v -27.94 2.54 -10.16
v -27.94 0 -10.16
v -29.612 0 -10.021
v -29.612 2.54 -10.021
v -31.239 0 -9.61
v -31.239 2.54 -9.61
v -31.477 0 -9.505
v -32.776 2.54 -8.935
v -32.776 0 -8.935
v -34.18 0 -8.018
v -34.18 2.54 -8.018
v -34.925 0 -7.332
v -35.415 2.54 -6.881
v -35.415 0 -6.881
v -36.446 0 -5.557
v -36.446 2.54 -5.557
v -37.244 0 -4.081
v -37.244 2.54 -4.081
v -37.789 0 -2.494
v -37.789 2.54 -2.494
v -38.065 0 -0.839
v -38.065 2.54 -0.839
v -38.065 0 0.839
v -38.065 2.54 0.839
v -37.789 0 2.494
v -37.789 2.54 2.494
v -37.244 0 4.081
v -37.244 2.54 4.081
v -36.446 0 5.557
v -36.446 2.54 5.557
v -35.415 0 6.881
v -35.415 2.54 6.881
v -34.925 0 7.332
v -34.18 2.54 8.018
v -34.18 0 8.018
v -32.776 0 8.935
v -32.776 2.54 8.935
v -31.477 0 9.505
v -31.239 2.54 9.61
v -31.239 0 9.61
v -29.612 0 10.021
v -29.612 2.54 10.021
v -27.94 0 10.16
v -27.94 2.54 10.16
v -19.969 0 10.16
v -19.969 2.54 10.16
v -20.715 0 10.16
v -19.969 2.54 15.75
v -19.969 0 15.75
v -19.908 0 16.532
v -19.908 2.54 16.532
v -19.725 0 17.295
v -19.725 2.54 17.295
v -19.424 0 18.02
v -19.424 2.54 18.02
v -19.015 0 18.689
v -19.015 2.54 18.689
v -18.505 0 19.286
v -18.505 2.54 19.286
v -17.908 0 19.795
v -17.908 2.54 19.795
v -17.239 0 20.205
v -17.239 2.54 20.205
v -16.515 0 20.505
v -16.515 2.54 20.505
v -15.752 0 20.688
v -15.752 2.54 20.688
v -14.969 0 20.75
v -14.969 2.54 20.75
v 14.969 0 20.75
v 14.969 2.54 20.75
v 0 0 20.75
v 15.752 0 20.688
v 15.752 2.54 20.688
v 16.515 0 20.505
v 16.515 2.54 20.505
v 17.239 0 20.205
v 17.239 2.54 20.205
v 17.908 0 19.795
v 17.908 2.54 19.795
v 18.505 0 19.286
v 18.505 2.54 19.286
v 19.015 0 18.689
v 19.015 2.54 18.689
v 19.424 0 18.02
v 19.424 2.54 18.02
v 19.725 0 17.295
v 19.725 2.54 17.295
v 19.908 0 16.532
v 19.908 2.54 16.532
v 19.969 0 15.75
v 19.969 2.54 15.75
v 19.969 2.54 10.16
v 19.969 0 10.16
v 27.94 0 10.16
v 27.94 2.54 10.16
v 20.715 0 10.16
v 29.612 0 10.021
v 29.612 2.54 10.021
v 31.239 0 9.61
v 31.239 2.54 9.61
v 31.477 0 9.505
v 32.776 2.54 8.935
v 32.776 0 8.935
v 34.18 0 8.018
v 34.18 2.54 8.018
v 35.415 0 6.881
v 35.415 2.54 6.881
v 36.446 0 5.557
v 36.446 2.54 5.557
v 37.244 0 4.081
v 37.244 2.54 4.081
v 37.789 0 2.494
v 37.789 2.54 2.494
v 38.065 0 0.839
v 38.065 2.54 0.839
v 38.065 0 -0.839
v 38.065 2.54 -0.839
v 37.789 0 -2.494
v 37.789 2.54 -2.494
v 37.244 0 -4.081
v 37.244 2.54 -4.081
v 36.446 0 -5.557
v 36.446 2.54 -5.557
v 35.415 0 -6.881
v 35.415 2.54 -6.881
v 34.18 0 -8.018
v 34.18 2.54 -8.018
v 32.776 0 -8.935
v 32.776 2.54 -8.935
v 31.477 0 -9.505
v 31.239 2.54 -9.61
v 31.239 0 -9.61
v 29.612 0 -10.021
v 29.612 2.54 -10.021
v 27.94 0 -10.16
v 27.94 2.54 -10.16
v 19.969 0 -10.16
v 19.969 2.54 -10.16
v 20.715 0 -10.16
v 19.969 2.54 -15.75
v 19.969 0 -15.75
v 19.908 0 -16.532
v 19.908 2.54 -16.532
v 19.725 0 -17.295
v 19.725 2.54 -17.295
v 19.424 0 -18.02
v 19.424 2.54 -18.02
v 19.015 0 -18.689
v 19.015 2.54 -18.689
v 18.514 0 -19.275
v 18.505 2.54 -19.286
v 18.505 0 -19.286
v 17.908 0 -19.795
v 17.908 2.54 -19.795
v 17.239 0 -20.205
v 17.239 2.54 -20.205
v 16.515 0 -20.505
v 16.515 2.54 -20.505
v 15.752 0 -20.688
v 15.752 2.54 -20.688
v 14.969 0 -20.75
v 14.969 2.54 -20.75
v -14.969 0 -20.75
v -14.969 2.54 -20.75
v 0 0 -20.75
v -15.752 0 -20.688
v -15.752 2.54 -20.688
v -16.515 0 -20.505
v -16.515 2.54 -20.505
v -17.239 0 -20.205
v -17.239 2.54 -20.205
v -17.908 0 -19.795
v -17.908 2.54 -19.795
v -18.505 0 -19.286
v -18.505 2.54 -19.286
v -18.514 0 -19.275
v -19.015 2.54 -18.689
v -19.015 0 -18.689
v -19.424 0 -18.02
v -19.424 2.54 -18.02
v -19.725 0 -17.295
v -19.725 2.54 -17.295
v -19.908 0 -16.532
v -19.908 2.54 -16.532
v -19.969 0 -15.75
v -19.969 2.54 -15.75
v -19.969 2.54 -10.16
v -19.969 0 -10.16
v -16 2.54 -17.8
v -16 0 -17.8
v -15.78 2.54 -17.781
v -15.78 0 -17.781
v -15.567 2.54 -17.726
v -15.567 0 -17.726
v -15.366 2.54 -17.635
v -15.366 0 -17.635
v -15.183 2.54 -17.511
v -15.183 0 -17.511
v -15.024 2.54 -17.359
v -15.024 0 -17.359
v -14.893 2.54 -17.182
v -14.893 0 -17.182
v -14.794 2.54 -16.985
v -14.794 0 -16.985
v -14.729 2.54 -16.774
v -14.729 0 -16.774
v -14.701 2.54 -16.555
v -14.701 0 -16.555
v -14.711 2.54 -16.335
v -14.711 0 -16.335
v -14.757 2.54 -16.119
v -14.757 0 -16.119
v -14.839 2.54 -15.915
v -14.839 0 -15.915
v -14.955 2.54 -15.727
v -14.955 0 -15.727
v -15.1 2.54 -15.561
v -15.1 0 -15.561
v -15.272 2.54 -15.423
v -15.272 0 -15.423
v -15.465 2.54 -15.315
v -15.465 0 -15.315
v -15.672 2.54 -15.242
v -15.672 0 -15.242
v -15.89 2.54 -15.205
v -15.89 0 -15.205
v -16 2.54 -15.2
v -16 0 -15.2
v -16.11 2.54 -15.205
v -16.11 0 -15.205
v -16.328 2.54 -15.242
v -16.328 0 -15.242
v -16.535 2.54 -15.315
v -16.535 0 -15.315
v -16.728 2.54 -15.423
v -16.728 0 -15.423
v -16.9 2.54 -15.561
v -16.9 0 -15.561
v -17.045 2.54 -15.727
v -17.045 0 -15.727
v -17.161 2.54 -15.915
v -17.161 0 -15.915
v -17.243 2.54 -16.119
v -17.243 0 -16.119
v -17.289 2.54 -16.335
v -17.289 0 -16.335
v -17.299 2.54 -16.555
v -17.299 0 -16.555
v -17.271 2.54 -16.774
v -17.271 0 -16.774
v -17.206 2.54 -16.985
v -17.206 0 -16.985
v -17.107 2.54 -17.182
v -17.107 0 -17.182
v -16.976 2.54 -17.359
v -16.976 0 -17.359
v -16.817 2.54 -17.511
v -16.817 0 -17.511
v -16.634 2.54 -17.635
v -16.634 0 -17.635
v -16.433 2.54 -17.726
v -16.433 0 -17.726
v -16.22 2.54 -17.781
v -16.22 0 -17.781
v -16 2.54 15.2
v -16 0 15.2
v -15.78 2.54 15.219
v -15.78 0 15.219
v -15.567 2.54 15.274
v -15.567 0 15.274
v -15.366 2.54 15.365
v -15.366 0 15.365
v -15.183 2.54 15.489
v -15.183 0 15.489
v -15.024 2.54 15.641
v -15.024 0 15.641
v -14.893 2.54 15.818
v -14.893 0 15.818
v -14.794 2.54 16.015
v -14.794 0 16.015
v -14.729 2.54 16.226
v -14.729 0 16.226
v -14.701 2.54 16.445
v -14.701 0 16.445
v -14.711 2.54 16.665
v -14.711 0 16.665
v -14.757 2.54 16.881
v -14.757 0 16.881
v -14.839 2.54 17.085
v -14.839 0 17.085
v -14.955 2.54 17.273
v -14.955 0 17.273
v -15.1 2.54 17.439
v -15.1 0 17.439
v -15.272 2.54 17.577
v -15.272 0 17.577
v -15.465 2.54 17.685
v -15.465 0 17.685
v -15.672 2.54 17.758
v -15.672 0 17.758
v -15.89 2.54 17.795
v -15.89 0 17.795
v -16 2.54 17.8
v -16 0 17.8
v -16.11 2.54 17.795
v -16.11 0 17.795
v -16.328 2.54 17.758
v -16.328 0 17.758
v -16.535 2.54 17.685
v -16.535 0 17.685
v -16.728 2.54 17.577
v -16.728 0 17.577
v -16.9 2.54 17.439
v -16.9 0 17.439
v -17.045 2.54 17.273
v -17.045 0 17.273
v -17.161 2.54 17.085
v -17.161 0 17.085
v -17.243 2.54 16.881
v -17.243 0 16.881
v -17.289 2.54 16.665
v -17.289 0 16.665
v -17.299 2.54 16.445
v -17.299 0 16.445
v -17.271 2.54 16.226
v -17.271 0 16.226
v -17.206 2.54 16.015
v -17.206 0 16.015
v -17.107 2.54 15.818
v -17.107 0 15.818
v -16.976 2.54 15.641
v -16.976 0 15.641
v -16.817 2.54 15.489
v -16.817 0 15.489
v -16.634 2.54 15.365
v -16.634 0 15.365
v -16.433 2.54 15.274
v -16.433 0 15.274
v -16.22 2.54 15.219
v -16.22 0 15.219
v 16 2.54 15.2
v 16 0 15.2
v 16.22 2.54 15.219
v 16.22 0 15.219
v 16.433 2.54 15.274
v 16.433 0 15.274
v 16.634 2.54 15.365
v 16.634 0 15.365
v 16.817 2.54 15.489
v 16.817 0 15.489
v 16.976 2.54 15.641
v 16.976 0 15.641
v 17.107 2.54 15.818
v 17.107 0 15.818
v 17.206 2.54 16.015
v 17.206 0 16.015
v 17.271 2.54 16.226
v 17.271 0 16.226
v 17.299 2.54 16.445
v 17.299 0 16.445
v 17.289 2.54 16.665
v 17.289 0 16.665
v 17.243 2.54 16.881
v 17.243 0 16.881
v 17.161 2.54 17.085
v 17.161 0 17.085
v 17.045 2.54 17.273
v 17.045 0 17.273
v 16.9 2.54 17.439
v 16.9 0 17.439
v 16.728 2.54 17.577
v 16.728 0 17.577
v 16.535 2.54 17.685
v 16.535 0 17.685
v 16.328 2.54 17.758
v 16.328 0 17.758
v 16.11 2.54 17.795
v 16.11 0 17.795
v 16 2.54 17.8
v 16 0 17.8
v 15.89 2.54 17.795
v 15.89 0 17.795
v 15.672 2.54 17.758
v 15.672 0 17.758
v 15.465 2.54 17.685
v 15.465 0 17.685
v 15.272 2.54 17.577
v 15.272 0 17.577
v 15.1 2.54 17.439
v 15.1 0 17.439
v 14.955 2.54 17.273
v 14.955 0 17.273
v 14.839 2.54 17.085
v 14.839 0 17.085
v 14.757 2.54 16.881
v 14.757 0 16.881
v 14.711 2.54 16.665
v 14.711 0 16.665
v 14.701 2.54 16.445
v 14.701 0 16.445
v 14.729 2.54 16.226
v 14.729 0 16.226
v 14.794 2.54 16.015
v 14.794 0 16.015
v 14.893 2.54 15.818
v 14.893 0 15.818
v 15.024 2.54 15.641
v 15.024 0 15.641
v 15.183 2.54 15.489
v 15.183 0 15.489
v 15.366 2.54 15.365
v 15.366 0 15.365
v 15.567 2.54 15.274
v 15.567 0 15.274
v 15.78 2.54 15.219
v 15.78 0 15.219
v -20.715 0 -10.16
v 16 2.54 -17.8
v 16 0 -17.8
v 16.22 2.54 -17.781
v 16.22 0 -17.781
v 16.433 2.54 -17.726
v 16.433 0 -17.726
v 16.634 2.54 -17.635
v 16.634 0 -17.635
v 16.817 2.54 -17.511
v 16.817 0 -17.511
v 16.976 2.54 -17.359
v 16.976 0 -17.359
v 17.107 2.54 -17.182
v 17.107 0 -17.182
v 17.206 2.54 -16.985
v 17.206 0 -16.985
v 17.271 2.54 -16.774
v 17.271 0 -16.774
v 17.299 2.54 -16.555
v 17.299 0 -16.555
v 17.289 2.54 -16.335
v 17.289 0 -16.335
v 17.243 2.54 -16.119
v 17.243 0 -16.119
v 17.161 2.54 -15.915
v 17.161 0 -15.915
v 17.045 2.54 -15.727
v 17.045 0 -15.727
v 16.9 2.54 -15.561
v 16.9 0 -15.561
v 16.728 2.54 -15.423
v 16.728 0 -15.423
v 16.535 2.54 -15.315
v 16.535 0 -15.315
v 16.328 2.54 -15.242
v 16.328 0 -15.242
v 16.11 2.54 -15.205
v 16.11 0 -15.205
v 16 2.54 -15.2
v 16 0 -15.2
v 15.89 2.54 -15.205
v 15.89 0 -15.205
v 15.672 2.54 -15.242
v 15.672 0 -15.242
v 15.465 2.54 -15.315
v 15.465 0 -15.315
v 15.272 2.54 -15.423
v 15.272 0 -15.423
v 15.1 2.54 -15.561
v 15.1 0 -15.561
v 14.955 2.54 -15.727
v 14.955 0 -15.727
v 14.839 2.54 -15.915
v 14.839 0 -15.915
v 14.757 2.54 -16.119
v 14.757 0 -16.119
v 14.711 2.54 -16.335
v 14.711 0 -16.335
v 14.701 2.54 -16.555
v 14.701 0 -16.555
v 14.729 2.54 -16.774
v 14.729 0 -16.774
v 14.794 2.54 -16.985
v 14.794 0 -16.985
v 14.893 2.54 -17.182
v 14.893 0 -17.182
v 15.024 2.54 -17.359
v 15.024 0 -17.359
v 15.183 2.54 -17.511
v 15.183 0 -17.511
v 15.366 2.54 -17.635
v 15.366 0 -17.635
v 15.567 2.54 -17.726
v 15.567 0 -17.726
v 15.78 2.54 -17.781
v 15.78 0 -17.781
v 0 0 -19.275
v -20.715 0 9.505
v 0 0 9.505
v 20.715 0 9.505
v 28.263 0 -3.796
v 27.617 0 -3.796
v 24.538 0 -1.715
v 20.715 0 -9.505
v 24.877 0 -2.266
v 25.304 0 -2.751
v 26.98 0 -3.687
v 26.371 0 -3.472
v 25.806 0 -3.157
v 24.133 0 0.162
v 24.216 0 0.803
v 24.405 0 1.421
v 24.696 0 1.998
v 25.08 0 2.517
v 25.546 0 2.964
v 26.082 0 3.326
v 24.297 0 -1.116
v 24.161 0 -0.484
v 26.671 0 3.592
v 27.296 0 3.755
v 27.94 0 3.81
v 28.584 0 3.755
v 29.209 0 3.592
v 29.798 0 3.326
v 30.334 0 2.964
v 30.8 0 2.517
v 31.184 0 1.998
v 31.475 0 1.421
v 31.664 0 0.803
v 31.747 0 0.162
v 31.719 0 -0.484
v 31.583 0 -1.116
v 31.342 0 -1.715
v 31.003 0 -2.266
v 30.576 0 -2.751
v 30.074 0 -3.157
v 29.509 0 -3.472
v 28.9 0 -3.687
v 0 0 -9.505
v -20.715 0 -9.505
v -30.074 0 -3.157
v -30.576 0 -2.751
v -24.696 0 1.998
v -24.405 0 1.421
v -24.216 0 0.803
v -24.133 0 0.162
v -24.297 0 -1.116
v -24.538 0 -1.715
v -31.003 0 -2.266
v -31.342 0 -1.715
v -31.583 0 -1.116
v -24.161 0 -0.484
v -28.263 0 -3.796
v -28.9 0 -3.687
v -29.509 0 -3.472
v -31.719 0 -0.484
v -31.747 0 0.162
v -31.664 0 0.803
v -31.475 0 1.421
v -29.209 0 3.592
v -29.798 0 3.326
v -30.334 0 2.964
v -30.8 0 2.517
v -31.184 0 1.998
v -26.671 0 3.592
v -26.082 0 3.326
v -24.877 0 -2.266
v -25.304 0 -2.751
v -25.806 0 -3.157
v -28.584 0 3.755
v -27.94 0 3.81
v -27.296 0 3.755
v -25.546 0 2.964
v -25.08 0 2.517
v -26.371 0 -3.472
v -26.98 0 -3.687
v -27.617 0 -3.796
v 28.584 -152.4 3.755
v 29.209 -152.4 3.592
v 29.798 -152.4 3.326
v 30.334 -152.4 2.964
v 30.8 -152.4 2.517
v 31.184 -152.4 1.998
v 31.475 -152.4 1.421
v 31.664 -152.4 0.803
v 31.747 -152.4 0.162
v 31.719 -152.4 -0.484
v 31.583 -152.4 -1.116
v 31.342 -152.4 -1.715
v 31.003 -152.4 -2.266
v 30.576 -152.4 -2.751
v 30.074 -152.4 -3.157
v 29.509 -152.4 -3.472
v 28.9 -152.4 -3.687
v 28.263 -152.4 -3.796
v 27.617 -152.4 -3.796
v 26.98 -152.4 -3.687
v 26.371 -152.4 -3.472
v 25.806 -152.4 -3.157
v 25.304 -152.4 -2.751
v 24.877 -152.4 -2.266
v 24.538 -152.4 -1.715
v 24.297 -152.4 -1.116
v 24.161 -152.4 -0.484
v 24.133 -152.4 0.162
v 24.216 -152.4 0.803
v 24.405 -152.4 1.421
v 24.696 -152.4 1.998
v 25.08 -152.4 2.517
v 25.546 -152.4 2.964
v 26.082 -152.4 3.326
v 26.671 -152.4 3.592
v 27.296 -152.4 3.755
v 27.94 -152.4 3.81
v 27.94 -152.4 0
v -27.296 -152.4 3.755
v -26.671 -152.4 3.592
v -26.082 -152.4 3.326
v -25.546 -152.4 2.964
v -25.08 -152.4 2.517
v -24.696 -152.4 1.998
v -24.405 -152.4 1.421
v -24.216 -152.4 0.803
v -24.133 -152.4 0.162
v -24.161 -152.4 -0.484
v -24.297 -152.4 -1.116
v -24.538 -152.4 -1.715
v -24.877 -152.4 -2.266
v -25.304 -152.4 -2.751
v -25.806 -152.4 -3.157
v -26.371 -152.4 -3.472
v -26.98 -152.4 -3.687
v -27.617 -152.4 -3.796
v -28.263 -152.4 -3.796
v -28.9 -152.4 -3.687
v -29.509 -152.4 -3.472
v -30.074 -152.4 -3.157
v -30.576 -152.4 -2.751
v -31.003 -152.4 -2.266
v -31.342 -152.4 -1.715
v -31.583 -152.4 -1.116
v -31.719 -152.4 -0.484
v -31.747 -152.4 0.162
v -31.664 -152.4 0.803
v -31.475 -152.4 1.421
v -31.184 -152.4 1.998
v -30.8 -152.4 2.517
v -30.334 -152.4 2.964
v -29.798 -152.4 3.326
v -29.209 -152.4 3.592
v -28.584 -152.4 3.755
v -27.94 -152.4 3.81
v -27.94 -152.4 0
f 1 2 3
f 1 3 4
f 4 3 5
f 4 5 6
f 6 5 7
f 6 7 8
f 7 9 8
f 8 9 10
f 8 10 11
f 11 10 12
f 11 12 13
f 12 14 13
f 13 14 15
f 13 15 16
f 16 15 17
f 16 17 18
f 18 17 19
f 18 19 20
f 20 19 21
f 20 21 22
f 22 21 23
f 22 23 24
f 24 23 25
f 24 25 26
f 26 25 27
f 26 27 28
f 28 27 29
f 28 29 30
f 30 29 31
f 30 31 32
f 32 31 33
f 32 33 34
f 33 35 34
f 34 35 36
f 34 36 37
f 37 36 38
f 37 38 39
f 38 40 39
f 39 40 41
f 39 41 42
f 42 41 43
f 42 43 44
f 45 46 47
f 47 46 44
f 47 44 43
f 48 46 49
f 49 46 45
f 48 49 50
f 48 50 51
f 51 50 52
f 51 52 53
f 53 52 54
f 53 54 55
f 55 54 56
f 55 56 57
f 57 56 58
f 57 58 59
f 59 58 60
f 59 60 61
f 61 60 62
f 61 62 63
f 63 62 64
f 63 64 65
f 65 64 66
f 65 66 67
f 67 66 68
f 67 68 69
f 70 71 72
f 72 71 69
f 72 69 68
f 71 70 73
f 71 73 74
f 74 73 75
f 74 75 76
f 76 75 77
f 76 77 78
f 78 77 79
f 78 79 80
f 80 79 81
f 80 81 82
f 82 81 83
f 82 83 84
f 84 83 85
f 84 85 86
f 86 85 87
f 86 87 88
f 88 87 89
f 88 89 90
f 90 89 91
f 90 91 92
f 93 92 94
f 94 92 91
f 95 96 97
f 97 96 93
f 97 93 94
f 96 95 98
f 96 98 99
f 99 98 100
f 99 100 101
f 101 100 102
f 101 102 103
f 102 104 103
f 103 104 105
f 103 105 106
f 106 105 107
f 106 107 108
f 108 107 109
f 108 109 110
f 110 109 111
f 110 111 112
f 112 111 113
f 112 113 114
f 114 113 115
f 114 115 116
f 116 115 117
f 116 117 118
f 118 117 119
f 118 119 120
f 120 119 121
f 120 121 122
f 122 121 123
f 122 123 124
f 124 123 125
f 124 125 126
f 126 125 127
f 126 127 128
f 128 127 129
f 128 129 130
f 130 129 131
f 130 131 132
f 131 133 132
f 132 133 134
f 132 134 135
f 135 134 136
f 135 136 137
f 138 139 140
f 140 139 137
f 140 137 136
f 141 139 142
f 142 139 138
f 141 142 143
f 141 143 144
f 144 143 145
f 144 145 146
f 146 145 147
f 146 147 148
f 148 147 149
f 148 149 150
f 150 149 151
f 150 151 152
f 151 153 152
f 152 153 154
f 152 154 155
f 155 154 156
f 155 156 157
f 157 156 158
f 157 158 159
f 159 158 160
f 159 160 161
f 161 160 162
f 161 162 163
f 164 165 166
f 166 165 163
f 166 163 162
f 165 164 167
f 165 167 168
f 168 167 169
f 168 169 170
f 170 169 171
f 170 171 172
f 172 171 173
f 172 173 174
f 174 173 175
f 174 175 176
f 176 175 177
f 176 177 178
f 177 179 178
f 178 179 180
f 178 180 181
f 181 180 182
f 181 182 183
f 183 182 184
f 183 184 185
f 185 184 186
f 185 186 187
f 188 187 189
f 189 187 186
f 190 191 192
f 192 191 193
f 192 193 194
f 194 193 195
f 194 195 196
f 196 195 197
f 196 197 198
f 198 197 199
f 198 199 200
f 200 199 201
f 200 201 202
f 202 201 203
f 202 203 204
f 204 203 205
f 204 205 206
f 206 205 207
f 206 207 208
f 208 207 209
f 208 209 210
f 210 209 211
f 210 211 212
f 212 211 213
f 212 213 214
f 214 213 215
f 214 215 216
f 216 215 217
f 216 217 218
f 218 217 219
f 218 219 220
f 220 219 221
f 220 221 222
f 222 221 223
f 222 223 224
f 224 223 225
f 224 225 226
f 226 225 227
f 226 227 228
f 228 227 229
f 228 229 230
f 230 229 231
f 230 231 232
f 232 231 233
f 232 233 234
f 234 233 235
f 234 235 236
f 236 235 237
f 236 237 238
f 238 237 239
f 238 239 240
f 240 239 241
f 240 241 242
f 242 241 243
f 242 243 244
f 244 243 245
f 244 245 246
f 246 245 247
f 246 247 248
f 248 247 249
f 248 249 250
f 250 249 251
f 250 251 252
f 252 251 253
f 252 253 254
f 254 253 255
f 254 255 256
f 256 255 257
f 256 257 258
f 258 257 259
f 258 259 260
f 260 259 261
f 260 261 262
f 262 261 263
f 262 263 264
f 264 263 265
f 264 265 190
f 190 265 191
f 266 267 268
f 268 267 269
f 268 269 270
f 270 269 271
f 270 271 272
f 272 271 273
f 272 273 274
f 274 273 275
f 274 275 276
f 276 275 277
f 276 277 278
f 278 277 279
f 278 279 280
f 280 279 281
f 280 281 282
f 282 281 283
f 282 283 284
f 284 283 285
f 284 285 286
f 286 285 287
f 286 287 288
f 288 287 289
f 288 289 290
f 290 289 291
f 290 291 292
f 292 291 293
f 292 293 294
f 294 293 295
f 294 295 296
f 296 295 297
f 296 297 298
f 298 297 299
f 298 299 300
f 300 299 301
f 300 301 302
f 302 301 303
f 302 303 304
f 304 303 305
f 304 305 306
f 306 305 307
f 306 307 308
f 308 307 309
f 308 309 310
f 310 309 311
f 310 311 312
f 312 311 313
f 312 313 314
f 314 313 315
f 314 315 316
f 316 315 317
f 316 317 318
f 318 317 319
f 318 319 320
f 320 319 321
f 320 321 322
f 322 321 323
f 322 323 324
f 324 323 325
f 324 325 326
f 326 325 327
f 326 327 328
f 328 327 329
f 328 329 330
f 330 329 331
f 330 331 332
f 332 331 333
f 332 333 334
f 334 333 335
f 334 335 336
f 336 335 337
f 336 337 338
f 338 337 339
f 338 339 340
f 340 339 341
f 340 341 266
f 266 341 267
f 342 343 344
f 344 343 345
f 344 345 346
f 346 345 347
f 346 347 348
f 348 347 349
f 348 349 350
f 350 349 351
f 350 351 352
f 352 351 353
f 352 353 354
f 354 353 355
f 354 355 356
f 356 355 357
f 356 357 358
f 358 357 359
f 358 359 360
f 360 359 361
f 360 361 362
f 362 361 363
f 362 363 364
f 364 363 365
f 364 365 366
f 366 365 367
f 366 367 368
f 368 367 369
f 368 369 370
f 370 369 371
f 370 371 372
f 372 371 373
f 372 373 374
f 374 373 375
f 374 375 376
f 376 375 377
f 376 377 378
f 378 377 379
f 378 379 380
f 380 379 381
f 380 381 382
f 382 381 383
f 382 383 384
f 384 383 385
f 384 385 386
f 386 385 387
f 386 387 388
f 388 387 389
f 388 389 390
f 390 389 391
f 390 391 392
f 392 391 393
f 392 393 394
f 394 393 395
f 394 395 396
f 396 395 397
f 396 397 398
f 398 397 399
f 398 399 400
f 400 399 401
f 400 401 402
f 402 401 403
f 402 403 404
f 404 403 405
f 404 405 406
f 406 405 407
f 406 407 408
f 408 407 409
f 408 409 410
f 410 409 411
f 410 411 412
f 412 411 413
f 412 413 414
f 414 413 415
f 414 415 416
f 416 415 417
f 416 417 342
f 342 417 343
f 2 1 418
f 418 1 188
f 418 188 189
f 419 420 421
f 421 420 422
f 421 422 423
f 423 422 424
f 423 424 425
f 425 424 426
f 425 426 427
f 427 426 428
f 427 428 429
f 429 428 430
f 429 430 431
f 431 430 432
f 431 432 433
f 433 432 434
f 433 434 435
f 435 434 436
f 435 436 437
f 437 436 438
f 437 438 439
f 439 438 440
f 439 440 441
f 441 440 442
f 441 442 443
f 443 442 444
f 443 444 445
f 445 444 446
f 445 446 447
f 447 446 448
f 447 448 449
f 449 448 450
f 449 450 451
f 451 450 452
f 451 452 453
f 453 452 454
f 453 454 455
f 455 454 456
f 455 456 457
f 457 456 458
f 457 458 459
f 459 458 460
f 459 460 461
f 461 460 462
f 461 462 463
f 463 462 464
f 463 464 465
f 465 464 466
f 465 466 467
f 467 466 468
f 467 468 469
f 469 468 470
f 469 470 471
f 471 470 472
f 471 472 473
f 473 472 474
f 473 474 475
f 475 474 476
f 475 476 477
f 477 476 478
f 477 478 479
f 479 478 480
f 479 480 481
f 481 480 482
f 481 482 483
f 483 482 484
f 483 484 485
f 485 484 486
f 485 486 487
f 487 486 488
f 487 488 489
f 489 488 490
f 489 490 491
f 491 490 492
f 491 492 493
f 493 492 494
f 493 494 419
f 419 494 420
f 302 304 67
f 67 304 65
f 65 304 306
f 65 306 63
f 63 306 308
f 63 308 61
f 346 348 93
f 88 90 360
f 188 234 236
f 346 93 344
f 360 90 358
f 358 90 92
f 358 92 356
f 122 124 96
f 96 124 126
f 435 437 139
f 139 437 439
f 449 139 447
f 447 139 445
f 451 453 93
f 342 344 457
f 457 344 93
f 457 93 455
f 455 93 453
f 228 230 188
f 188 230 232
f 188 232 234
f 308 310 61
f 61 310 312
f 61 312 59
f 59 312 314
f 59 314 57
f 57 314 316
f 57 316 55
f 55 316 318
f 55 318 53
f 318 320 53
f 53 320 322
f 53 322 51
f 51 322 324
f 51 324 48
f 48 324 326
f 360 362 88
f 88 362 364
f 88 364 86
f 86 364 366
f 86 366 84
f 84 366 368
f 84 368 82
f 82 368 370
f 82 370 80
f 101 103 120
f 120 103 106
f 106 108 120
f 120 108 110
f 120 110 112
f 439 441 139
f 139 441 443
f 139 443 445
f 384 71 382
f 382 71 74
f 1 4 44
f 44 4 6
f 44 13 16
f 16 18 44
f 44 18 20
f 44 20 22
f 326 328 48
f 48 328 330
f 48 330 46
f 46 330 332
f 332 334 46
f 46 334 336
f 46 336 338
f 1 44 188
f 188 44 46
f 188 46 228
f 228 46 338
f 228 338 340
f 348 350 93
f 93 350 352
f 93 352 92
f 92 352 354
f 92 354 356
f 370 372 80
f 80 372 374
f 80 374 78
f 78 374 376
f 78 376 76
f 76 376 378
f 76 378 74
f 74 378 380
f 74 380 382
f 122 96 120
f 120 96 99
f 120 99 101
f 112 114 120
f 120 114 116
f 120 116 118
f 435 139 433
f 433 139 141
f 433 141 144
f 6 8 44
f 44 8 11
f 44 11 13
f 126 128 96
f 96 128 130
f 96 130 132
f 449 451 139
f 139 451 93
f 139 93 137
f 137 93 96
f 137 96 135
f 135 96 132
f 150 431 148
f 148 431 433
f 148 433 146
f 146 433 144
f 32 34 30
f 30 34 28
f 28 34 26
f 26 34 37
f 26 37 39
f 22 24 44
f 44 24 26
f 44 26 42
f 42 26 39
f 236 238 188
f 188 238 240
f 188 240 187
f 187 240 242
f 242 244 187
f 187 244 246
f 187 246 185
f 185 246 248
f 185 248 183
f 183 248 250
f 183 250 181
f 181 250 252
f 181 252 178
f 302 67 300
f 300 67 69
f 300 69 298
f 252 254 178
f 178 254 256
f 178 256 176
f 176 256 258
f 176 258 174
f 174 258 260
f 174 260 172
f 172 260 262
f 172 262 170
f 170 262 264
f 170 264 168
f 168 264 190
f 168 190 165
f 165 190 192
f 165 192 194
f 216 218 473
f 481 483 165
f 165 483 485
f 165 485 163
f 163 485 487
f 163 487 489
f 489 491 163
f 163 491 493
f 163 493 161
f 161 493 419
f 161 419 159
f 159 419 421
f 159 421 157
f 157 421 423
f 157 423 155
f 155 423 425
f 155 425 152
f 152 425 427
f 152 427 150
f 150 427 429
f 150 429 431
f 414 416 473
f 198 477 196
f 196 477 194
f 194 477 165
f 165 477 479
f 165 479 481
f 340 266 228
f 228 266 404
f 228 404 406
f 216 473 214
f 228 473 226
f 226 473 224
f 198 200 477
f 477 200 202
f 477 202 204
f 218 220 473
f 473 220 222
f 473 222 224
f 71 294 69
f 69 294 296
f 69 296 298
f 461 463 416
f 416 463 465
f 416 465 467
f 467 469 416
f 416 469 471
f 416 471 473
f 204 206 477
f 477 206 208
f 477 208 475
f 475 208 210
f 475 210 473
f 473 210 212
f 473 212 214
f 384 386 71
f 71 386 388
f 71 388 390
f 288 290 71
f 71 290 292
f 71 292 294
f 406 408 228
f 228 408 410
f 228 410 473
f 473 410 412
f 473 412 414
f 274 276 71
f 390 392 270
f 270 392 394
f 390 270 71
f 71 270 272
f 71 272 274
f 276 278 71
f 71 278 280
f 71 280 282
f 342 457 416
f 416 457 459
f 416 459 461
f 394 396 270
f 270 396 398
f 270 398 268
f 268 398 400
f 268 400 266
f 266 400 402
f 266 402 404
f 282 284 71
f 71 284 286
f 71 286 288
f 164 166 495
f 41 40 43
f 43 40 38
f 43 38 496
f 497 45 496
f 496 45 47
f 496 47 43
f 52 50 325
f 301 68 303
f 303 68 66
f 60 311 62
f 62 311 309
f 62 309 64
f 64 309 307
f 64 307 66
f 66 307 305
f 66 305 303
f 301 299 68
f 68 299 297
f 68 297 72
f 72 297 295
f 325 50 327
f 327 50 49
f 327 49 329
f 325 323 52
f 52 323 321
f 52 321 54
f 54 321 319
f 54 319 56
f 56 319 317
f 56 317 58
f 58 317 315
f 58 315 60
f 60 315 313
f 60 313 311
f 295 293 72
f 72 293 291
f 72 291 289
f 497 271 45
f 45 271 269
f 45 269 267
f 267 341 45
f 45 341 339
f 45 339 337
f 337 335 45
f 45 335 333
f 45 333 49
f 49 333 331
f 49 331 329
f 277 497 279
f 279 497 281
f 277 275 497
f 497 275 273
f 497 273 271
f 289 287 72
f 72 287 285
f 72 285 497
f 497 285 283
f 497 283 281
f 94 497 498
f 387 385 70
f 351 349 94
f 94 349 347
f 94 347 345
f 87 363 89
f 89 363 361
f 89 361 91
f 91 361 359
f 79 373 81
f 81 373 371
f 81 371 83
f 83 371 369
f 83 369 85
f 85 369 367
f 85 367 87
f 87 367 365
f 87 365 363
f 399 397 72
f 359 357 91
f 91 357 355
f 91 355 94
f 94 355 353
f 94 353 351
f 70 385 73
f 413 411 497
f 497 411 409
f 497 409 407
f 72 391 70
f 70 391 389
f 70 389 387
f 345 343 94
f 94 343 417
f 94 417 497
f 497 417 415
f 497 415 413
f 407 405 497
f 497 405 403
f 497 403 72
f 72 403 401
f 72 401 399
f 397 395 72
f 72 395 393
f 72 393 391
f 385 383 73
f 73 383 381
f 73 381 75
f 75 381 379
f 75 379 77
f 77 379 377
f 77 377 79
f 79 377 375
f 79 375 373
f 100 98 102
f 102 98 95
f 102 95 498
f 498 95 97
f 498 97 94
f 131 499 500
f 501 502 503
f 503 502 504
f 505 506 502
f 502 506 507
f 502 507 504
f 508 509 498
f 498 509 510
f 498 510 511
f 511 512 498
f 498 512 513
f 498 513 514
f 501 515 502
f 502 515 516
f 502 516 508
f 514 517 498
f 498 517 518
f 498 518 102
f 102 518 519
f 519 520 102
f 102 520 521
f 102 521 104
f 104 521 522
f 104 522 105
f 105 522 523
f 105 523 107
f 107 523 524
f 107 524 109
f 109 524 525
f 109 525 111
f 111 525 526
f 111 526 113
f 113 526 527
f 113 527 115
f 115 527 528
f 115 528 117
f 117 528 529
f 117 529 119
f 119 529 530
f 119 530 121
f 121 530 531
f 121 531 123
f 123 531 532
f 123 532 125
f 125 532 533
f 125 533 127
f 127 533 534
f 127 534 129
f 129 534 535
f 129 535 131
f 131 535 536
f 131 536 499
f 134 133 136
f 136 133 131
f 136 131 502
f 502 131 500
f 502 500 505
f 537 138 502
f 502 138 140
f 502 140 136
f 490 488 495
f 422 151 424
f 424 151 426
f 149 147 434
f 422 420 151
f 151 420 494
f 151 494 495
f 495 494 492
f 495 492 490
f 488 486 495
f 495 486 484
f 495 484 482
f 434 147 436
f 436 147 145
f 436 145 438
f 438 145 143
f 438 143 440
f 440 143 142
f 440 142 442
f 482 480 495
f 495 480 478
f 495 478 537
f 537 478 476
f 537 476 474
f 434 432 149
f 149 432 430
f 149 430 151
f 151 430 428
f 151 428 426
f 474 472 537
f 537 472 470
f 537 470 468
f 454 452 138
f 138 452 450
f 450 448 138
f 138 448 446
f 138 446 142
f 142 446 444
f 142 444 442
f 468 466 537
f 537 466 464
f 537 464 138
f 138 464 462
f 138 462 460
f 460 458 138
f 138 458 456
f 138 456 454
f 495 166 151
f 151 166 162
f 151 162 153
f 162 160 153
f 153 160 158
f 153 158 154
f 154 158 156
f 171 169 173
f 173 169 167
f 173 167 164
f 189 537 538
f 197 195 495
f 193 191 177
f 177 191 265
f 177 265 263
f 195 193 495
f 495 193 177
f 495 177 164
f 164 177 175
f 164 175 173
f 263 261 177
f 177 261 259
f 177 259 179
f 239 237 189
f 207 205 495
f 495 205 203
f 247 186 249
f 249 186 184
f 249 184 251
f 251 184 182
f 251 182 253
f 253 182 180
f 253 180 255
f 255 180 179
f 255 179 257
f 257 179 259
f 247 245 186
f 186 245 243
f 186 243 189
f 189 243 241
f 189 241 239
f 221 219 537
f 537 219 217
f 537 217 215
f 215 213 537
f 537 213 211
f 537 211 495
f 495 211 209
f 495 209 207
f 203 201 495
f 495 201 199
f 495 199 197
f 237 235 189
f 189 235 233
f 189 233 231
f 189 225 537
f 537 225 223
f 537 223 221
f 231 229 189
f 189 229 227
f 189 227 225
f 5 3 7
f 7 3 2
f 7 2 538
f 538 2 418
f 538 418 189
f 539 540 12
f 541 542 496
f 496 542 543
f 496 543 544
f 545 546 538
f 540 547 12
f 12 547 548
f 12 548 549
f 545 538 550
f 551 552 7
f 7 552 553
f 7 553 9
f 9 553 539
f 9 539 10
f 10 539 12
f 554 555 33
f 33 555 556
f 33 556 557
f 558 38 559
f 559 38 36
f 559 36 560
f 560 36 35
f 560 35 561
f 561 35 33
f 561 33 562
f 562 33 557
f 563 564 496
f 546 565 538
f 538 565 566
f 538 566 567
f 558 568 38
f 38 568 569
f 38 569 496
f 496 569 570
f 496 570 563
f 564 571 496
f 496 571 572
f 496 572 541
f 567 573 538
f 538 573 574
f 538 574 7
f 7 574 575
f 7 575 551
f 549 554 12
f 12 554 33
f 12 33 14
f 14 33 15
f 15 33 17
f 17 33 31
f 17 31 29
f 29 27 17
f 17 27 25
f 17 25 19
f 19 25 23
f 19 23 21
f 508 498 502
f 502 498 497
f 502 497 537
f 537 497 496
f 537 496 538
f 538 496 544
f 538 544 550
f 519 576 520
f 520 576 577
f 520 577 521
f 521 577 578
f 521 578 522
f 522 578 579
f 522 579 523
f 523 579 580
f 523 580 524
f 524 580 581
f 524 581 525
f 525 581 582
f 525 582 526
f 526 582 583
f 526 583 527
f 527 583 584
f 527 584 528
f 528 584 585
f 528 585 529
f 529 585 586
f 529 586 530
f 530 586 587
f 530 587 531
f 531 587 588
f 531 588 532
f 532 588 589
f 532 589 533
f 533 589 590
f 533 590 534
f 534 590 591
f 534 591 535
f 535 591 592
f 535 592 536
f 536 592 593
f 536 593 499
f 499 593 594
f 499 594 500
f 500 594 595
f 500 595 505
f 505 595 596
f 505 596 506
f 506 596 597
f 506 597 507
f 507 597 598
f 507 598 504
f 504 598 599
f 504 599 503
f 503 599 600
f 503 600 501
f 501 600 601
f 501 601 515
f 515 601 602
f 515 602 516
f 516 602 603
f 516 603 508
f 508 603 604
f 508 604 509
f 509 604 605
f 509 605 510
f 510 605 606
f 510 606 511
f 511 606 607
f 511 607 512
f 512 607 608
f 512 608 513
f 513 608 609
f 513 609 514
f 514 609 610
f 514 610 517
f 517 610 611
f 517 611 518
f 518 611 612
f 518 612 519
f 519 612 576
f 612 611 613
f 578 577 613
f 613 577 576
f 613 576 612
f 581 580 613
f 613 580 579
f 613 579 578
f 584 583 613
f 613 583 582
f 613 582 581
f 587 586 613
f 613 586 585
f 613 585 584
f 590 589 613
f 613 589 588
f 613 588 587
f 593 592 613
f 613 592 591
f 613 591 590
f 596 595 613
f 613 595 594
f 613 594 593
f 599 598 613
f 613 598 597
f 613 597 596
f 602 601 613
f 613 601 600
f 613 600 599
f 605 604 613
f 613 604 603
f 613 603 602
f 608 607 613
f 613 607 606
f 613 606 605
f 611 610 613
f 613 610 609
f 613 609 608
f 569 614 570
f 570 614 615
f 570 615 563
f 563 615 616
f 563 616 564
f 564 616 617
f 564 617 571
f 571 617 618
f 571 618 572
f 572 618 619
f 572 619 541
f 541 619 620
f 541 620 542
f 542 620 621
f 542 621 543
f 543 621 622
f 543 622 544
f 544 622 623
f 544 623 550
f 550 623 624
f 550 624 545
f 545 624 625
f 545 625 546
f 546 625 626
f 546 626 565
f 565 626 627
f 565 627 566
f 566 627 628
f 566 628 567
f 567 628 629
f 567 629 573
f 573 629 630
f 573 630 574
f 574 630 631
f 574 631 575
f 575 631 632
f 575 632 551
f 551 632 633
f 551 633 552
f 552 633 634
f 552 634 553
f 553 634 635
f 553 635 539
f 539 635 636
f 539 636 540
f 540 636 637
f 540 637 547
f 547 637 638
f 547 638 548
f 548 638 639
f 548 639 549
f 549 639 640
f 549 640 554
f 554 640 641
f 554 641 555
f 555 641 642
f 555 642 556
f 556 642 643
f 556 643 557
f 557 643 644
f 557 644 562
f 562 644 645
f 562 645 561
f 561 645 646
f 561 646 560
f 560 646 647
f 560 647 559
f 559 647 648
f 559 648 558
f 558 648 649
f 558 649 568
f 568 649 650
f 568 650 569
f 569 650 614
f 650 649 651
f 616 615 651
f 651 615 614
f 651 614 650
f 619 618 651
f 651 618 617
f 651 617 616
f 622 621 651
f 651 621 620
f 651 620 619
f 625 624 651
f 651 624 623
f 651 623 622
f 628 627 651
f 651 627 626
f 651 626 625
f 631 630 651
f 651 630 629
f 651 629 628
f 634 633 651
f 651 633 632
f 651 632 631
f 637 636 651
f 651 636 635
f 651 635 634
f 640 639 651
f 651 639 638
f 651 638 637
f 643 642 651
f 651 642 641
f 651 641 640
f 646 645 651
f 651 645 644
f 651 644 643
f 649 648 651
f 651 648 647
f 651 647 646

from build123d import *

# Parameters (mm, degrees)
SKETCH1_R           = 1.3
BOSS_EXTRUDE1_DEPTH = 2.54
SKETCH1_3_R         = 3.81
BOSS_EXTRUDE2_DEPTH = 152.4


with BuildPart() as part:
    # Sketch1 → Boss-Extrude1 (new body)
    with BuildSketch(Plane(origin=(0, 0, 0), x_dir=(1, 0, 0), z_dir=(0, 1, 0))):
        with BuildLine():
            Line((14.969429072, 20.75), (-14.969429072, 20.75))
            ThreePointArc((-14.969429072, 20.75), (-18.504962978, 19.285533906), (-19.969429072, 15.75))
            Line((-19.969429072, 15.75), (-19.969429072, 10.16))
            Line((-19.969429072, 10.16), (-27.94, 10.16))
            ThreePointArc((-27.94, 10.16), (-38.1, 0), (-27.94, -10.16))
            Line((-27.94, -10.16), (-19.969429072, -10.16))
            Line((-19.969429072, -10.16), (-19.969429072, -15.75))
            ThreePointArc((-19.969429072, -15.75), (-18.504962978, -19.285533906), (-14.969429072, -20.75))
            Line((-14.969429072, -20.75), (14.969429072, -20.75))
            ThreePointArc((14.969429072, -20.75), (18.504962978, -19.285533906), (19.969429072, -15.75))
            Line((19.969429072, -15.75), (19.969429072, -10.16))
            Line((19.969429072, -10.16), (27.94, -10.16))
            ThreePointArc((27.94, -10.16), (38.1, 0), (27.94, 10.16))
            Line((27.94, 10.16), (19.969429072, 10.16))
            Line((19.969429072, 10.16), (19.969429072, 15.75))
            ThreePointArc((19.969429072, 15.75), (18.504962978, 19.285533906), (14.969429072, 20.75))
        make_face()
        with Locations((-16, 16.5)):
            Circle(SKETCH1_R, mode=Mode.SUBTRACT)
        with Locations((16, 16.5)):
            Circle(SKETCH1_R, mode=Mode.SUBTRACT)
        with Locations((16, -16.5)):
            Circle(SKETCH1_R, mode=Mode.SUBTRACT)
        with Locations((-16, -16.5)):
            Circle(SKETCH1_R, mode=Mode.SUBTRACT)
    extrude(amount=BOSS_EXTRUDE1_DEPTH)

    # Sketch1<3> → Boss-Extrude2 (add)
    with BuildSketch(Plane(origin=(0, 0, 0), x_dir=(1, 0, 0), z_dir=(0, 1, 0))):
        with Locations((-27.94, 0)):
            Circle(SKETCH1_3_R)
        with Locations((27.94, 0)):
            Circle(SKETCH1_3_R)
    extrude(amount=-BOSS_EXTRUDE2_DEPTH)


solid = part.part
